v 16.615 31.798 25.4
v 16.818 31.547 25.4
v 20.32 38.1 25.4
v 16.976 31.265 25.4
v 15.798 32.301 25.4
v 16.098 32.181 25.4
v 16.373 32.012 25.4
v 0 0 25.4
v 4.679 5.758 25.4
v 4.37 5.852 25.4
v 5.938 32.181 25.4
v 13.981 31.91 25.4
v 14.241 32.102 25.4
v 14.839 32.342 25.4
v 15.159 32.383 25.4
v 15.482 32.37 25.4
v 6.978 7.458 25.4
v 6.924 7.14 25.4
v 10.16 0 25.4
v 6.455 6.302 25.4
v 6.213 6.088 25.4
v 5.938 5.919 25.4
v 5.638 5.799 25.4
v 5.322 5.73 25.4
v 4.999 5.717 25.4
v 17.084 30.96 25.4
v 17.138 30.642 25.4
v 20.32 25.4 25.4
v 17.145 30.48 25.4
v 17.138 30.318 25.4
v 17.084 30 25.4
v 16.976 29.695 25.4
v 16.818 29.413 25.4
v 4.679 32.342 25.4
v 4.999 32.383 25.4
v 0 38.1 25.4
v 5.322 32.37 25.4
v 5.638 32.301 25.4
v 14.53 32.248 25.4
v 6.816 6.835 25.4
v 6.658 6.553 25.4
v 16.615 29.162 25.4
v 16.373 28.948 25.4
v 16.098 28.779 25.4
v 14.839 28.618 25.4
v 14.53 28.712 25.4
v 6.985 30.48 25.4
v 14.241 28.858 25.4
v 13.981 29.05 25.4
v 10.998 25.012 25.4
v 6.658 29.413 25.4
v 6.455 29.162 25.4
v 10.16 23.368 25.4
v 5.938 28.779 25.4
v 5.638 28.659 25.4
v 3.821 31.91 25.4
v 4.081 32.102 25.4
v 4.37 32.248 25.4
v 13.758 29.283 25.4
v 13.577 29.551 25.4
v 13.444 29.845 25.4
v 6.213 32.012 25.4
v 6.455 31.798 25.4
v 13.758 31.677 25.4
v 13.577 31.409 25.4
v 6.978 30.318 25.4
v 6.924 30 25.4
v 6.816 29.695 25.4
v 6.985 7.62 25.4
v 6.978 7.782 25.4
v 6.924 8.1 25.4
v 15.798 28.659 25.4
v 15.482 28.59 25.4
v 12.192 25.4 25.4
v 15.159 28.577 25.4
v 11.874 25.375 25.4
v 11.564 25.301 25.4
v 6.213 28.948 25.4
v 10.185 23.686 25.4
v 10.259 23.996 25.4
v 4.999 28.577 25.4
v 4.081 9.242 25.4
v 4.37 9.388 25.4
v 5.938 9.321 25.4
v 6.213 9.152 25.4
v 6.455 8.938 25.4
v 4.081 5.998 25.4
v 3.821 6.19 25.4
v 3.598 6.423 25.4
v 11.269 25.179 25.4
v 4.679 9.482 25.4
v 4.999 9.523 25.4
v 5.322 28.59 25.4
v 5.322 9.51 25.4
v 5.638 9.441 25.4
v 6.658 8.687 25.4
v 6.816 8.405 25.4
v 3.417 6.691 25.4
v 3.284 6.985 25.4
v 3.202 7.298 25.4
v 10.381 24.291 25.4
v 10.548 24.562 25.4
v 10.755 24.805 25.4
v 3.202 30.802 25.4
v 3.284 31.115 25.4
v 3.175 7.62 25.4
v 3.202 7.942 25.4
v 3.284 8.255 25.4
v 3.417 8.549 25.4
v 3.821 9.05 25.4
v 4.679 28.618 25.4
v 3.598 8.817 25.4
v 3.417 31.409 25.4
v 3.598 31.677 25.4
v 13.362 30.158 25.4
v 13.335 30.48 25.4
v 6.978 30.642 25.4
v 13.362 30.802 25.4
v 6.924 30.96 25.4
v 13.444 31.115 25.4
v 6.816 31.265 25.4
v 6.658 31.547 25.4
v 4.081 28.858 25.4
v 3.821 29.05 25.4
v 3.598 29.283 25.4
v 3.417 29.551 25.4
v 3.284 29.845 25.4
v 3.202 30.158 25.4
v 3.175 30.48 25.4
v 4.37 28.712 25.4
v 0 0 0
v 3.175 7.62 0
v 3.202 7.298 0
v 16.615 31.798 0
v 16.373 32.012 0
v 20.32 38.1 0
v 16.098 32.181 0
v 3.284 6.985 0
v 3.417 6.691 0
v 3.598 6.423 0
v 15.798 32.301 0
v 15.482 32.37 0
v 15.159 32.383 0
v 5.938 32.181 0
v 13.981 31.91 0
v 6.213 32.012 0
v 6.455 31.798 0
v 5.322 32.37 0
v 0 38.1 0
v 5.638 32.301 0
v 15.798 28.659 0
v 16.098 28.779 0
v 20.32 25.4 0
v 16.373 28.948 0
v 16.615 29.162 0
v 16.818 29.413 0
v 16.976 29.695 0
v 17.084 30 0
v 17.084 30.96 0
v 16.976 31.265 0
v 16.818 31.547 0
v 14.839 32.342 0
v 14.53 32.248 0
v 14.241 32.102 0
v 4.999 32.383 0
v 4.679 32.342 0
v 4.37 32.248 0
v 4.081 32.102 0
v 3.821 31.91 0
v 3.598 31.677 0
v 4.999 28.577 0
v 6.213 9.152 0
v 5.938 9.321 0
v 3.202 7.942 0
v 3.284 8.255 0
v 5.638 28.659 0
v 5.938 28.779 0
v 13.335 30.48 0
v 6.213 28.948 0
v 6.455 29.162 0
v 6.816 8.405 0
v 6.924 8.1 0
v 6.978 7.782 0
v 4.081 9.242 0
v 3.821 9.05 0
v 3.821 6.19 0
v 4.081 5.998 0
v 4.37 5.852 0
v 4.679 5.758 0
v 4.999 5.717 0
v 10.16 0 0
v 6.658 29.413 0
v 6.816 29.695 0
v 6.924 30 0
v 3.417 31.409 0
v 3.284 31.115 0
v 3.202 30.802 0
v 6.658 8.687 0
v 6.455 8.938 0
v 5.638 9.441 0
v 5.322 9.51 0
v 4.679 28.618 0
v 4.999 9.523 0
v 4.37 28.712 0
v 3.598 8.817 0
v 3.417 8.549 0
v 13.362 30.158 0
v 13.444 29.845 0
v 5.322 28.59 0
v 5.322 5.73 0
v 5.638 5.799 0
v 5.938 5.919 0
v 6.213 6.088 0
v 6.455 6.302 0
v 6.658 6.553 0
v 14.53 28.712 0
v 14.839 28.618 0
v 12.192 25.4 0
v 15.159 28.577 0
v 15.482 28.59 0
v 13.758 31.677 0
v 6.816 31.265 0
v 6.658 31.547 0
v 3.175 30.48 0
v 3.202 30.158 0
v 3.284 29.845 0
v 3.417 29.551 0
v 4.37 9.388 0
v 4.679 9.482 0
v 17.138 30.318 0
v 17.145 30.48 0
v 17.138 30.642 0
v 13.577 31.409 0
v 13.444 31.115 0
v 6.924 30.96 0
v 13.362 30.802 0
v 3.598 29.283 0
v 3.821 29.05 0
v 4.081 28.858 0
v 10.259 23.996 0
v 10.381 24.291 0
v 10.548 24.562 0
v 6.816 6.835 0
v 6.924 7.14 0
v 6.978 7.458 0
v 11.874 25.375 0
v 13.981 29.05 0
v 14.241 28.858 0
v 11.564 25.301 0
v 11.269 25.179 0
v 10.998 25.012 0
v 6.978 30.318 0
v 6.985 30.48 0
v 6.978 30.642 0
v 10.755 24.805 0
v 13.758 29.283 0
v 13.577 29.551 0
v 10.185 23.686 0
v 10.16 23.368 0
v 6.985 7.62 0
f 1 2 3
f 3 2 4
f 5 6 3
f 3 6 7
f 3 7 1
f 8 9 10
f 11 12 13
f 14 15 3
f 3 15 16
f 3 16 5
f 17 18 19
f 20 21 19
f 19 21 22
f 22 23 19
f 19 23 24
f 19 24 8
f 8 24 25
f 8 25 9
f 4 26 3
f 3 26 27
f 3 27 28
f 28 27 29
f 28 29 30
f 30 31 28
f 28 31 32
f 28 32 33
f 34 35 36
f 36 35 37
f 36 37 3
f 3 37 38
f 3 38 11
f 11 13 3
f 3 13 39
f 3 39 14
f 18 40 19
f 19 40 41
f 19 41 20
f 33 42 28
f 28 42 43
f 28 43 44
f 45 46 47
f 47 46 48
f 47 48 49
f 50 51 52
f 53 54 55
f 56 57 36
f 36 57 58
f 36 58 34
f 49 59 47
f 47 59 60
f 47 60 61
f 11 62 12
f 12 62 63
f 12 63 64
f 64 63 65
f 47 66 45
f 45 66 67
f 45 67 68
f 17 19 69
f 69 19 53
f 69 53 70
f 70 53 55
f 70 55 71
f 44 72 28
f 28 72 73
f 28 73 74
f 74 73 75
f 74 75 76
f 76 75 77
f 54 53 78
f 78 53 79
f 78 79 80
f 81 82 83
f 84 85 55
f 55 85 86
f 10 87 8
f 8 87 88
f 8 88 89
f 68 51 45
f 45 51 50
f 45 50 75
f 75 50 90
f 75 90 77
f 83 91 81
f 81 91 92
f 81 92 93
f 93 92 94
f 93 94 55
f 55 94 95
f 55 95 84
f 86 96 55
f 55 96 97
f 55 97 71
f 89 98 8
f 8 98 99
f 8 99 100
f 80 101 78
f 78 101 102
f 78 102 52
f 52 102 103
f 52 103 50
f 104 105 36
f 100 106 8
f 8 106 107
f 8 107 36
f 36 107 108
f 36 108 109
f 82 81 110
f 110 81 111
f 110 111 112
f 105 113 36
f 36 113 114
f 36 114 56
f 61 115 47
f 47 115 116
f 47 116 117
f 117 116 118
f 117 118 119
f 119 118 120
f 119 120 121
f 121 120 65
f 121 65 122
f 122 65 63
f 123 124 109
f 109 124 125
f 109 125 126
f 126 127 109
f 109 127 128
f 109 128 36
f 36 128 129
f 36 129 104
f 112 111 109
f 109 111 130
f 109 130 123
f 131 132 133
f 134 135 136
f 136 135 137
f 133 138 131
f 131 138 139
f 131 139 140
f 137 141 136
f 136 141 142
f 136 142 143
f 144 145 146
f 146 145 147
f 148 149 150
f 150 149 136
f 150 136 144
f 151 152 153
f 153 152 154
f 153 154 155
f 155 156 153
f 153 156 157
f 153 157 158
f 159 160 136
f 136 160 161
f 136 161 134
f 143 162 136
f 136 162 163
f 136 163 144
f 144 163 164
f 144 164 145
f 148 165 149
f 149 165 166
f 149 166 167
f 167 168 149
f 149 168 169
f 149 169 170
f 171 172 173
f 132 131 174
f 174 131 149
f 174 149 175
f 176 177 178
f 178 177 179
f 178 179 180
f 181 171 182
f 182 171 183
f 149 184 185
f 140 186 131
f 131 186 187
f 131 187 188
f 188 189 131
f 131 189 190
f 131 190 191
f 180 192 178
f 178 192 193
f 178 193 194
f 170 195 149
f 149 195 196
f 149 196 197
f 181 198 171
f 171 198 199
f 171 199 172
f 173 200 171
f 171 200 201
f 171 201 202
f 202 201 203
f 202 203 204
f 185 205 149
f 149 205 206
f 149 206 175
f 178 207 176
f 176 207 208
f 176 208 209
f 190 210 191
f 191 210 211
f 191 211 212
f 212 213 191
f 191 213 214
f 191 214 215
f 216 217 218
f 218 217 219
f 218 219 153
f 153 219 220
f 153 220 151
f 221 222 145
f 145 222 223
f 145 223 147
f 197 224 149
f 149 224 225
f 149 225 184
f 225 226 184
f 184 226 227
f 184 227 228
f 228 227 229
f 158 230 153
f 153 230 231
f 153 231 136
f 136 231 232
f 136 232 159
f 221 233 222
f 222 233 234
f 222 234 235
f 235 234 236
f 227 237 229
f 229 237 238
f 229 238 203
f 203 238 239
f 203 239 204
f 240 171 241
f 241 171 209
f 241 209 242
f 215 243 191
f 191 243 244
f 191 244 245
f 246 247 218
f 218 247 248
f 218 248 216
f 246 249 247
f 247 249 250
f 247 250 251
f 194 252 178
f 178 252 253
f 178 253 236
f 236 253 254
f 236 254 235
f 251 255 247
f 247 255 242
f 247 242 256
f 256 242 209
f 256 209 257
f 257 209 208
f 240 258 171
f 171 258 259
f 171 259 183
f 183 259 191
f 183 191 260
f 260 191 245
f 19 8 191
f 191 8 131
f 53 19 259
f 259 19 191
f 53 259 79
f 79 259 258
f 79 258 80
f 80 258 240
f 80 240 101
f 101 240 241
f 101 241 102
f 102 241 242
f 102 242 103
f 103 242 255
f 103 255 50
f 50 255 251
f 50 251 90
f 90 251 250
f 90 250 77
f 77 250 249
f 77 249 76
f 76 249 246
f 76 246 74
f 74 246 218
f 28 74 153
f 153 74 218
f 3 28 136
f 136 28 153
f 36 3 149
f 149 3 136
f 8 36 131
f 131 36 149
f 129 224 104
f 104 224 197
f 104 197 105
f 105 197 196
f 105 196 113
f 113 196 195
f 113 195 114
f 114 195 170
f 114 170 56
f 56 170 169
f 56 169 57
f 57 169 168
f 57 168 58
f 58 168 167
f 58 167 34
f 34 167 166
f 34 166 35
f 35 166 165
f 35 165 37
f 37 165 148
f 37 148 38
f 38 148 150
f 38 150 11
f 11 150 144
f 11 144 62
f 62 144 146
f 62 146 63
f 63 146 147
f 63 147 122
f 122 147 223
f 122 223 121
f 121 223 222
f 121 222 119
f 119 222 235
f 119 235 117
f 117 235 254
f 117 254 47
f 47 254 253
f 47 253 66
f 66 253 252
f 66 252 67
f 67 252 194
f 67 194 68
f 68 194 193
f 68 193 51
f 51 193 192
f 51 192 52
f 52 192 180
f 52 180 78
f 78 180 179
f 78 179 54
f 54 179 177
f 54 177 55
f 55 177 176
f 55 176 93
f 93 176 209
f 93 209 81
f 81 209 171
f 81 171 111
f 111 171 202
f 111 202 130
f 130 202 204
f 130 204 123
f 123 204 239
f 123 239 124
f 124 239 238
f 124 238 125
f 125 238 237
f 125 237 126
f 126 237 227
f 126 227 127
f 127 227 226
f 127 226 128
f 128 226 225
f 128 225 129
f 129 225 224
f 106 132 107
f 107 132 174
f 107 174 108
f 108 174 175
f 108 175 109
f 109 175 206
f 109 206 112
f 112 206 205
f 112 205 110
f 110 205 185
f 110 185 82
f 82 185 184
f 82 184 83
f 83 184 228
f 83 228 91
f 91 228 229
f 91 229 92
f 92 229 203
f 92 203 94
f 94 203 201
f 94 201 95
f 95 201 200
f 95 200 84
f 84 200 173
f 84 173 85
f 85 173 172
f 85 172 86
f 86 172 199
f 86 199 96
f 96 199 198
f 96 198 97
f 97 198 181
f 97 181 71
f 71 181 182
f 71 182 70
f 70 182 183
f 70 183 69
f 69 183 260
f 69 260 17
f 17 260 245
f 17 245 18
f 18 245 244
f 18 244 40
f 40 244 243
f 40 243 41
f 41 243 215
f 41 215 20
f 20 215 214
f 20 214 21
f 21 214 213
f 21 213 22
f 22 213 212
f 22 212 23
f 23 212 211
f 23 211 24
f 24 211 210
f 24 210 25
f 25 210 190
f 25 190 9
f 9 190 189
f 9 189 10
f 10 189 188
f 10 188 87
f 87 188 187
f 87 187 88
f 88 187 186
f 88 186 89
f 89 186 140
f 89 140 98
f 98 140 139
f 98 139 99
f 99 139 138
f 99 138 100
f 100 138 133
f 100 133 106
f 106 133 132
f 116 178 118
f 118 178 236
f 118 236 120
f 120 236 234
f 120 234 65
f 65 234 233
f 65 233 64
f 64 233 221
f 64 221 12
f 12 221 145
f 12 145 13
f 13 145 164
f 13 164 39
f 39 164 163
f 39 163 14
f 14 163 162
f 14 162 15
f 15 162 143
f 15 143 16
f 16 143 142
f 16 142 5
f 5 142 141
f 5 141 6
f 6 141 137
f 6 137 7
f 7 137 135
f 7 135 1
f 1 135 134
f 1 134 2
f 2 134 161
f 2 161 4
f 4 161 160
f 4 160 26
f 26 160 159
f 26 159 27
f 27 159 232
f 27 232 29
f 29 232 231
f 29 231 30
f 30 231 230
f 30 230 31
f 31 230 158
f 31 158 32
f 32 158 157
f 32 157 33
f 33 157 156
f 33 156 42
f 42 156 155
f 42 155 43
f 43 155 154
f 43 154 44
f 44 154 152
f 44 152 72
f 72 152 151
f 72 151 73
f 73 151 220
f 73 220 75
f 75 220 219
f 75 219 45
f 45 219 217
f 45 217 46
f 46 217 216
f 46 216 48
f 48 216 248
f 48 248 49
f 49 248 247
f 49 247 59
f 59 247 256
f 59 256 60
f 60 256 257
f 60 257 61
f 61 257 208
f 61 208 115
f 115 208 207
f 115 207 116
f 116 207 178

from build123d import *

# Parameters (mm, degrees)
SKETCH1_R           = 1.905
BOSS_EXTRUDE1_DEPTH = 25.4


with BuildPart() as part:
    # Sketch1 → Boss-Extrude1 (new body)
    with BuildSketch(Plane.XY):
        with BuildLine():
            Line((0, 0), (0, 38.1))
            Line((0, 38.1), (20.32, 38.1))
            Line((20.32, 38.1), (20.32, 25.4))
            Line((20.32, 25.4), (12.192, 25.4))
            ThreePointArc((12.192, 25.4), (10.755159021, 24.804840979), (10.16, 23.368))
            Line((10.16, 23.368), (10.16, 0))
            Line((10.16, 0), (0, 0))
        make_face()
        with Locations((5.08, 30.48)):
            Circle(SKETCH1_R, mode=Mode.SUBTRACT)
        with Locations((5.08, 7.62)):
            Circle(SKETCH1_R, mode=Mode.SUBTRACT)
        with Locations((15.24, 30.48)):
            Circle(SKETCH1_R, mode=Mode.SUBTRACT)
    extrude(amount=BOSS_EXTRUDE1_DEPTH)


solid = part.part
